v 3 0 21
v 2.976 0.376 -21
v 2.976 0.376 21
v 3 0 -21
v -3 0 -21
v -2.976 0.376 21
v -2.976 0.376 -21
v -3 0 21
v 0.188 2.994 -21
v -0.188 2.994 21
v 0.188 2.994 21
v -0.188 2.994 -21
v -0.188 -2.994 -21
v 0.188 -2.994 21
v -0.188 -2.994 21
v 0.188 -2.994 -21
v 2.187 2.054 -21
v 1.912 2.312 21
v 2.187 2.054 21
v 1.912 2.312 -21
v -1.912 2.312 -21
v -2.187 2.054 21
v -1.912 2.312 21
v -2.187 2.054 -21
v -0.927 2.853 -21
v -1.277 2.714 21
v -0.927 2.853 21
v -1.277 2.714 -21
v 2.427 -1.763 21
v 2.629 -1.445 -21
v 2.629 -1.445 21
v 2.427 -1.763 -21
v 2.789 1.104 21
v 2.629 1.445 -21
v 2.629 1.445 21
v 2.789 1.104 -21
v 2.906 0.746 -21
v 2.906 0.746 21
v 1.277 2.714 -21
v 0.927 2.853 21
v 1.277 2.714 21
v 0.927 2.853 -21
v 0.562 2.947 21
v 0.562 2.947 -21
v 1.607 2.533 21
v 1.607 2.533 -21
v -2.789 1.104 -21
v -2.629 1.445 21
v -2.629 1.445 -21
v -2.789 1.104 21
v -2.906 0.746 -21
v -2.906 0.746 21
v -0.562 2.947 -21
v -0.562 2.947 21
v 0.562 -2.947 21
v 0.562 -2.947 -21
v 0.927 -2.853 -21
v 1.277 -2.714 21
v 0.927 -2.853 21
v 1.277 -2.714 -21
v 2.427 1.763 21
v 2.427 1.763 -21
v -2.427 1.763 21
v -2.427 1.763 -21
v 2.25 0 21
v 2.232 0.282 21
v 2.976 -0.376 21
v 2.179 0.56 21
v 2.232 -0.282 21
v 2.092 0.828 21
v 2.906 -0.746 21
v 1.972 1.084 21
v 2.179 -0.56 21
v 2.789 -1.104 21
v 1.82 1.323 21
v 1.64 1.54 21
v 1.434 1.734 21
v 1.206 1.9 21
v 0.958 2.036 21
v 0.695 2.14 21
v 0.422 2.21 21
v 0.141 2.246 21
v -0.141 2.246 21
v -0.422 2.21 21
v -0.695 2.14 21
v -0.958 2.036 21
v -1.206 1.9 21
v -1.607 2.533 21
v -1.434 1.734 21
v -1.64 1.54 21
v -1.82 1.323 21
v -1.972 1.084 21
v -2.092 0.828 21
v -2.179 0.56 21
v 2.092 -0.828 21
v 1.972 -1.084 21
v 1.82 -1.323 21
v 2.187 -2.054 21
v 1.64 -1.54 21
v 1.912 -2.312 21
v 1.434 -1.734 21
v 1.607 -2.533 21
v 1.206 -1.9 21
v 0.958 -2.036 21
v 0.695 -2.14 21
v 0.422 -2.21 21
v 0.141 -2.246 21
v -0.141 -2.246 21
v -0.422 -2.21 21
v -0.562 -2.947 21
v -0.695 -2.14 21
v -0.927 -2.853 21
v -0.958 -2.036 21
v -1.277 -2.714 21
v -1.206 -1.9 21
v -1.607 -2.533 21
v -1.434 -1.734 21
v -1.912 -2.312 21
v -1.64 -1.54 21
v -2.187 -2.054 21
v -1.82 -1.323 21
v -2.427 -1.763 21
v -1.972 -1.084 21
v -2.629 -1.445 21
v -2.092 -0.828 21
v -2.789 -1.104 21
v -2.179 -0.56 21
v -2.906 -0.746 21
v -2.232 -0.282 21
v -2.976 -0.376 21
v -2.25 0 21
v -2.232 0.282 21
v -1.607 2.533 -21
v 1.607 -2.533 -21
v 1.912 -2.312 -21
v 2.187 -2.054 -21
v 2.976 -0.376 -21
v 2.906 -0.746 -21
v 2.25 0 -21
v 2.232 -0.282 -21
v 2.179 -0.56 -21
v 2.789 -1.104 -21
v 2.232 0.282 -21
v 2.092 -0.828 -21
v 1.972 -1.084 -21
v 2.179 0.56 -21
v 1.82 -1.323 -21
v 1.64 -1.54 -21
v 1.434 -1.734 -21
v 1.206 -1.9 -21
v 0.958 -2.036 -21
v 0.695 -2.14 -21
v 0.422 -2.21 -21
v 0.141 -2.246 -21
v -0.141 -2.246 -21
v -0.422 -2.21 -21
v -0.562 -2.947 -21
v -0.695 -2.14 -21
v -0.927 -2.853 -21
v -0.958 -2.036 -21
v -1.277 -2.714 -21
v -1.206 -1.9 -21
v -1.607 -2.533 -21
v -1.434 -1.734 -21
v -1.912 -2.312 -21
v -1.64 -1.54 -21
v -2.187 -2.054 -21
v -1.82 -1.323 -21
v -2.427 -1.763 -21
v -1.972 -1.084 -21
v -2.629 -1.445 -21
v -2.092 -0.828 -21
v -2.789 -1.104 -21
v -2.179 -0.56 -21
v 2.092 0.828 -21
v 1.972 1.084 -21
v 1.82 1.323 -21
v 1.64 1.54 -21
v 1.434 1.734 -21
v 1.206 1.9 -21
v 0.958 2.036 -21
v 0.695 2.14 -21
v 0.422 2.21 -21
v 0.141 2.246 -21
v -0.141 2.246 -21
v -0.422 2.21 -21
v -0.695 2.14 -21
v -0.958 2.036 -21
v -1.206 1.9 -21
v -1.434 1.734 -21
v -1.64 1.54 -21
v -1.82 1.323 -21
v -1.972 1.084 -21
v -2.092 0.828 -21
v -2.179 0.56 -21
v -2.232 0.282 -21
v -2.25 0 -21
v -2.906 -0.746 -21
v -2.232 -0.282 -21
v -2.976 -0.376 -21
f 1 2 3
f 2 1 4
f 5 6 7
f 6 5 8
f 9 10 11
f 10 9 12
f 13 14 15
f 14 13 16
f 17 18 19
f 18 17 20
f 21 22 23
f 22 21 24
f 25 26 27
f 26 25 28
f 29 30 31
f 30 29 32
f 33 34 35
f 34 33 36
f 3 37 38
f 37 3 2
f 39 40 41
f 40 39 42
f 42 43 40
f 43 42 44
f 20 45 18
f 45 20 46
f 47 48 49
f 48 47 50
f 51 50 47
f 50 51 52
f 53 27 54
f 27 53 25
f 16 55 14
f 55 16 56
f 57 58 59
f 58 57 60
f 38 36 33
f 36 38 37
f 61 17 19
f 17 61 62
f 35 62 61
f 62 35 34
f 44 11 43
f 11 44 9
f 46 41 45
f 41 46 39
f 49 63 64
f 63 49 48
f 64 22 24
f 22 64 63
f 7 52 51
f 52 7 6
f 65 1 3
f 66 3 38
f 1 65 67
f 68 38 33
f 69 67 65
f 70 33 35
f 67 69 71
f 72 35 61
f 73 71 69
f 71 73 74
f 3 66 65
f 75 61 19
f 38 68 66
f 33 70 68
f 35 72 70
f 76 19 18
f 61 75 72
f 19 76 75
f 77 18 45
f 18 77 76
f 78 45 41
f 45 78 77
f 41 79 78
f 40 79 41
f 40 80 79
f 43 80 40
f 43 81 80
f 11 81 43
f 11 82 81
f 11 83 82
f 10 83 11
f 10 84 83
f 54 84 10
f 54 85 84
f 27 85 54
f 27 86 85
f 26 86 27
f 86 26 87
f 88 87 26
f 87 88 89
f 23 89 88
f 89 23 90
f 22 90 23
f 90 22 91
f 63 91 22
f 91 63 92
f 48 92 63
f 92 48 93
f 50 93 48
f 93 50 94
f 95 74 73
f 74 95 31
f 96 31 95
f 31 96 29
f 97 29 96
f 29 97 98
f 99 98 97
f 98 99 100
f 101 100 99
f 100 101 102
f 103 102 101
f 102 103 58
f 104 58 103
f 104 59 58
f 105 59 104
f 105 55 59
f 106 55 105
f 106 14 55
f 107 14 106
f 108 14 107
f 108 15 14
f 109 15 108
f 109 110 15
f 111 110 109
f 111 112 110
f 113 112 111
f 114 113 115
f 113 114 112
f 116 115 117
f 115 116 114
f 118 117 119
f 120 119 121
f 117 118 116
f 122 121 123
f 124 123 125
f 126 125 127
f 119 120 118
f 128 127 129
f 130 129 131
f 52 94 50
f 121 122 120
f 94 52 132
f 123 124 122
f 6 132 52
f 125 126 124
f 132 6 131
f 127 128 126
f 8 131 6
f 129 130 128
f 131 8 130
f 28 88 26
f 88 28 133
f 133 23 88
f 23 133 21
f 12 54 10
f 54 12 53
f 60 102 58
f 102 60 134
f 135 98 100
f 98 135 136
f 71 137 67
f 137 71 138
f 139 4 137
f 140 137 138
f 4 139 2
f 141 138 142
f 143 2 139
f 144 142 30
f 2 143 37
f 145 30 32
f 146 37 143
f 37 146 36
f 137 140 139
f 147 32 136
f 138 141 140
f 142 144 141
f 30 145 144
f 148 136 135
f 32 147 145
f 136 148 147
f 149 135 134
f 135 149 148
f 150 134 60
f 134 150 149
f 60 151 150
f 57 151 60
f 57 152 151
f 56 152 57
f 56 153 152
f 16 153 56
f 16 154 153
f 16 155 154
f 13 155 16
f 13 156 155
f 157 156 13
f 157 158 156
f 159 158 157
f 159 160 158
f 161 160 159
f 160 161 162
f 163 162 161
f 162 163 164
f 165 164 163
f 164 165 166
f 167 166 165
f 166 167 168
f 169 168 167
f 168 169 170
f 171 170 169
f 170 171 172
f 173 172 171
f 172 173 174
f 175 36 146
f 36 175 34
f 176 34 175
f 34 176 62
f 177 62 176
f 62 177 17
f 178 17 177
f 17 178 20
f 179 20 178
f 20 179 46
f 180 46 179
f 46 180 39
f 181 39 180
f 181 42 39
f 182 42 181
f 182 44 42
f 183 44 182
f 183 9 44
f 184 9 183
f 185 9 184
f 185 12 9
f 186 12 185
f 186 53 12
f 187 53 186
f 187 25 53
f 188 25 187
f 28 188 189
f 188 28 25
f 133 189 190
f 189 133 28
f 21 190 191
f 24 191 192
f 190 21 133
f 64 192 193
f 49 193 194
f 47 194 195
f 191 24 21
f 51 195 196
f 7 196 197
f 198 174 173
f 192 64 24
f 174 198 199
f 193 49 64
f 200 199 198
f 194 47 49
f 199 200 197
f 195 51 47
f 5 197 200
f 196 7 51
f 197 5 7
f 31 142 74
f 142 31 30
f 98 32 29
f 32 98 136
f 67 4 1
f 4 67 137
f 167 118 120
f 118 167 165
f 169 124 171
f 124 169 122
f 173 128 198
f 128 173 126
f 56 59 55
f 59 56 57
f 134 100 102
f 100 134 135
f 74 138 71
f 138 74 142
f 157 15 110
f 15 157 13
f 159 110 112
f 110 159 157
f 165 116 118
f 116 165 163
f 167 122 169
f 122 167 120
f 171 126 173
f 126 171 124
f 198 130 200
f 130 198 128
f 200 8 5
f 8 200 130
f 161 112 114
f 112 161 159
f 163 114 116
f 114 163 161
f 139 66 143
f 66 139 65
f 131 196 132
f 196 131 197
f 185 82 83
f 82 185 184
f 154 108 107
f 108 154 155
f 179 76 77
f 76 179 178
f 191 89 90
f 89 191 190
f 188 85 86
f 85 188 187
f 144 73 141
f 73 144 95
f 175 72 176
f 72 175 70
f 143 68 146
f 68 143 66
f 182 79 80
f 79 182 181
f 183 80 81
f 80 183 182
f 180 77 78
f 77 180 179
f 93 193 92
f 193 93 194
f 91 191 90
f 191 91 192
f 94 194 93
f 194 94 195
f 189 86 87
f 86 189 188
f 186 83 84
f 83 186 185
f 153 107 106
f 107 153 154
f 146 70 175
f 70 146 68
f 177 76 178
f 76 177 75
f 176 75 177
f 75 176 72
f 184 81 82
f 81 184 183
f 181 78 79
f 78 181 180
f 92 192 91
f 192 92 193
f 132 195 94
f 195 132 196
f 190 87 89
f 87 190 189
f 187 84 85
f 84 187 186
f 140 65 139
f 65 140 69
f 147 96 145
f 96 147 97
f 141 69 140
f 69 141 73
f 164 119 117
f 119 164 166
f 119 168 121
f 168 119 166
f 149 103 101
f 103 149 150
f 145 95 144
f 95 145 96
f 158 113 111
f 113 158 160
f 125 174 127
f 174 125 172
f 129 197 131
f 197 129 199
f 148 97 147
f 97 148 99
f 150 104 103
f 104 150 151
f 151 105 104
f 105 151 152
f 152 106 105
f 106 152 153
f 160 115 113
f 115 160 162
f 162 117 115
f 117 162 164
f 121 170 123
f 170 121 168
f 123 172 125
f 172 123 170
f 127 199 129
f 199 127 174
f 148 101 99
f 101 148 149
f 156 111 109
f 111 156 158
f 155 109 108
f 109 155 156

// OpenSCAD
$fn = 50;


difference() {
	union() {
		translate(v = [0, 0, -21.0000000000]) {
			cylinder(h = 42, r = 3.0000000000);
		}
	}
	union() {
		translate(v = [0, 0, -100.0000000000]) {
			cylinder(h = 200, r = 2.2500000000);
		}
	}
}
